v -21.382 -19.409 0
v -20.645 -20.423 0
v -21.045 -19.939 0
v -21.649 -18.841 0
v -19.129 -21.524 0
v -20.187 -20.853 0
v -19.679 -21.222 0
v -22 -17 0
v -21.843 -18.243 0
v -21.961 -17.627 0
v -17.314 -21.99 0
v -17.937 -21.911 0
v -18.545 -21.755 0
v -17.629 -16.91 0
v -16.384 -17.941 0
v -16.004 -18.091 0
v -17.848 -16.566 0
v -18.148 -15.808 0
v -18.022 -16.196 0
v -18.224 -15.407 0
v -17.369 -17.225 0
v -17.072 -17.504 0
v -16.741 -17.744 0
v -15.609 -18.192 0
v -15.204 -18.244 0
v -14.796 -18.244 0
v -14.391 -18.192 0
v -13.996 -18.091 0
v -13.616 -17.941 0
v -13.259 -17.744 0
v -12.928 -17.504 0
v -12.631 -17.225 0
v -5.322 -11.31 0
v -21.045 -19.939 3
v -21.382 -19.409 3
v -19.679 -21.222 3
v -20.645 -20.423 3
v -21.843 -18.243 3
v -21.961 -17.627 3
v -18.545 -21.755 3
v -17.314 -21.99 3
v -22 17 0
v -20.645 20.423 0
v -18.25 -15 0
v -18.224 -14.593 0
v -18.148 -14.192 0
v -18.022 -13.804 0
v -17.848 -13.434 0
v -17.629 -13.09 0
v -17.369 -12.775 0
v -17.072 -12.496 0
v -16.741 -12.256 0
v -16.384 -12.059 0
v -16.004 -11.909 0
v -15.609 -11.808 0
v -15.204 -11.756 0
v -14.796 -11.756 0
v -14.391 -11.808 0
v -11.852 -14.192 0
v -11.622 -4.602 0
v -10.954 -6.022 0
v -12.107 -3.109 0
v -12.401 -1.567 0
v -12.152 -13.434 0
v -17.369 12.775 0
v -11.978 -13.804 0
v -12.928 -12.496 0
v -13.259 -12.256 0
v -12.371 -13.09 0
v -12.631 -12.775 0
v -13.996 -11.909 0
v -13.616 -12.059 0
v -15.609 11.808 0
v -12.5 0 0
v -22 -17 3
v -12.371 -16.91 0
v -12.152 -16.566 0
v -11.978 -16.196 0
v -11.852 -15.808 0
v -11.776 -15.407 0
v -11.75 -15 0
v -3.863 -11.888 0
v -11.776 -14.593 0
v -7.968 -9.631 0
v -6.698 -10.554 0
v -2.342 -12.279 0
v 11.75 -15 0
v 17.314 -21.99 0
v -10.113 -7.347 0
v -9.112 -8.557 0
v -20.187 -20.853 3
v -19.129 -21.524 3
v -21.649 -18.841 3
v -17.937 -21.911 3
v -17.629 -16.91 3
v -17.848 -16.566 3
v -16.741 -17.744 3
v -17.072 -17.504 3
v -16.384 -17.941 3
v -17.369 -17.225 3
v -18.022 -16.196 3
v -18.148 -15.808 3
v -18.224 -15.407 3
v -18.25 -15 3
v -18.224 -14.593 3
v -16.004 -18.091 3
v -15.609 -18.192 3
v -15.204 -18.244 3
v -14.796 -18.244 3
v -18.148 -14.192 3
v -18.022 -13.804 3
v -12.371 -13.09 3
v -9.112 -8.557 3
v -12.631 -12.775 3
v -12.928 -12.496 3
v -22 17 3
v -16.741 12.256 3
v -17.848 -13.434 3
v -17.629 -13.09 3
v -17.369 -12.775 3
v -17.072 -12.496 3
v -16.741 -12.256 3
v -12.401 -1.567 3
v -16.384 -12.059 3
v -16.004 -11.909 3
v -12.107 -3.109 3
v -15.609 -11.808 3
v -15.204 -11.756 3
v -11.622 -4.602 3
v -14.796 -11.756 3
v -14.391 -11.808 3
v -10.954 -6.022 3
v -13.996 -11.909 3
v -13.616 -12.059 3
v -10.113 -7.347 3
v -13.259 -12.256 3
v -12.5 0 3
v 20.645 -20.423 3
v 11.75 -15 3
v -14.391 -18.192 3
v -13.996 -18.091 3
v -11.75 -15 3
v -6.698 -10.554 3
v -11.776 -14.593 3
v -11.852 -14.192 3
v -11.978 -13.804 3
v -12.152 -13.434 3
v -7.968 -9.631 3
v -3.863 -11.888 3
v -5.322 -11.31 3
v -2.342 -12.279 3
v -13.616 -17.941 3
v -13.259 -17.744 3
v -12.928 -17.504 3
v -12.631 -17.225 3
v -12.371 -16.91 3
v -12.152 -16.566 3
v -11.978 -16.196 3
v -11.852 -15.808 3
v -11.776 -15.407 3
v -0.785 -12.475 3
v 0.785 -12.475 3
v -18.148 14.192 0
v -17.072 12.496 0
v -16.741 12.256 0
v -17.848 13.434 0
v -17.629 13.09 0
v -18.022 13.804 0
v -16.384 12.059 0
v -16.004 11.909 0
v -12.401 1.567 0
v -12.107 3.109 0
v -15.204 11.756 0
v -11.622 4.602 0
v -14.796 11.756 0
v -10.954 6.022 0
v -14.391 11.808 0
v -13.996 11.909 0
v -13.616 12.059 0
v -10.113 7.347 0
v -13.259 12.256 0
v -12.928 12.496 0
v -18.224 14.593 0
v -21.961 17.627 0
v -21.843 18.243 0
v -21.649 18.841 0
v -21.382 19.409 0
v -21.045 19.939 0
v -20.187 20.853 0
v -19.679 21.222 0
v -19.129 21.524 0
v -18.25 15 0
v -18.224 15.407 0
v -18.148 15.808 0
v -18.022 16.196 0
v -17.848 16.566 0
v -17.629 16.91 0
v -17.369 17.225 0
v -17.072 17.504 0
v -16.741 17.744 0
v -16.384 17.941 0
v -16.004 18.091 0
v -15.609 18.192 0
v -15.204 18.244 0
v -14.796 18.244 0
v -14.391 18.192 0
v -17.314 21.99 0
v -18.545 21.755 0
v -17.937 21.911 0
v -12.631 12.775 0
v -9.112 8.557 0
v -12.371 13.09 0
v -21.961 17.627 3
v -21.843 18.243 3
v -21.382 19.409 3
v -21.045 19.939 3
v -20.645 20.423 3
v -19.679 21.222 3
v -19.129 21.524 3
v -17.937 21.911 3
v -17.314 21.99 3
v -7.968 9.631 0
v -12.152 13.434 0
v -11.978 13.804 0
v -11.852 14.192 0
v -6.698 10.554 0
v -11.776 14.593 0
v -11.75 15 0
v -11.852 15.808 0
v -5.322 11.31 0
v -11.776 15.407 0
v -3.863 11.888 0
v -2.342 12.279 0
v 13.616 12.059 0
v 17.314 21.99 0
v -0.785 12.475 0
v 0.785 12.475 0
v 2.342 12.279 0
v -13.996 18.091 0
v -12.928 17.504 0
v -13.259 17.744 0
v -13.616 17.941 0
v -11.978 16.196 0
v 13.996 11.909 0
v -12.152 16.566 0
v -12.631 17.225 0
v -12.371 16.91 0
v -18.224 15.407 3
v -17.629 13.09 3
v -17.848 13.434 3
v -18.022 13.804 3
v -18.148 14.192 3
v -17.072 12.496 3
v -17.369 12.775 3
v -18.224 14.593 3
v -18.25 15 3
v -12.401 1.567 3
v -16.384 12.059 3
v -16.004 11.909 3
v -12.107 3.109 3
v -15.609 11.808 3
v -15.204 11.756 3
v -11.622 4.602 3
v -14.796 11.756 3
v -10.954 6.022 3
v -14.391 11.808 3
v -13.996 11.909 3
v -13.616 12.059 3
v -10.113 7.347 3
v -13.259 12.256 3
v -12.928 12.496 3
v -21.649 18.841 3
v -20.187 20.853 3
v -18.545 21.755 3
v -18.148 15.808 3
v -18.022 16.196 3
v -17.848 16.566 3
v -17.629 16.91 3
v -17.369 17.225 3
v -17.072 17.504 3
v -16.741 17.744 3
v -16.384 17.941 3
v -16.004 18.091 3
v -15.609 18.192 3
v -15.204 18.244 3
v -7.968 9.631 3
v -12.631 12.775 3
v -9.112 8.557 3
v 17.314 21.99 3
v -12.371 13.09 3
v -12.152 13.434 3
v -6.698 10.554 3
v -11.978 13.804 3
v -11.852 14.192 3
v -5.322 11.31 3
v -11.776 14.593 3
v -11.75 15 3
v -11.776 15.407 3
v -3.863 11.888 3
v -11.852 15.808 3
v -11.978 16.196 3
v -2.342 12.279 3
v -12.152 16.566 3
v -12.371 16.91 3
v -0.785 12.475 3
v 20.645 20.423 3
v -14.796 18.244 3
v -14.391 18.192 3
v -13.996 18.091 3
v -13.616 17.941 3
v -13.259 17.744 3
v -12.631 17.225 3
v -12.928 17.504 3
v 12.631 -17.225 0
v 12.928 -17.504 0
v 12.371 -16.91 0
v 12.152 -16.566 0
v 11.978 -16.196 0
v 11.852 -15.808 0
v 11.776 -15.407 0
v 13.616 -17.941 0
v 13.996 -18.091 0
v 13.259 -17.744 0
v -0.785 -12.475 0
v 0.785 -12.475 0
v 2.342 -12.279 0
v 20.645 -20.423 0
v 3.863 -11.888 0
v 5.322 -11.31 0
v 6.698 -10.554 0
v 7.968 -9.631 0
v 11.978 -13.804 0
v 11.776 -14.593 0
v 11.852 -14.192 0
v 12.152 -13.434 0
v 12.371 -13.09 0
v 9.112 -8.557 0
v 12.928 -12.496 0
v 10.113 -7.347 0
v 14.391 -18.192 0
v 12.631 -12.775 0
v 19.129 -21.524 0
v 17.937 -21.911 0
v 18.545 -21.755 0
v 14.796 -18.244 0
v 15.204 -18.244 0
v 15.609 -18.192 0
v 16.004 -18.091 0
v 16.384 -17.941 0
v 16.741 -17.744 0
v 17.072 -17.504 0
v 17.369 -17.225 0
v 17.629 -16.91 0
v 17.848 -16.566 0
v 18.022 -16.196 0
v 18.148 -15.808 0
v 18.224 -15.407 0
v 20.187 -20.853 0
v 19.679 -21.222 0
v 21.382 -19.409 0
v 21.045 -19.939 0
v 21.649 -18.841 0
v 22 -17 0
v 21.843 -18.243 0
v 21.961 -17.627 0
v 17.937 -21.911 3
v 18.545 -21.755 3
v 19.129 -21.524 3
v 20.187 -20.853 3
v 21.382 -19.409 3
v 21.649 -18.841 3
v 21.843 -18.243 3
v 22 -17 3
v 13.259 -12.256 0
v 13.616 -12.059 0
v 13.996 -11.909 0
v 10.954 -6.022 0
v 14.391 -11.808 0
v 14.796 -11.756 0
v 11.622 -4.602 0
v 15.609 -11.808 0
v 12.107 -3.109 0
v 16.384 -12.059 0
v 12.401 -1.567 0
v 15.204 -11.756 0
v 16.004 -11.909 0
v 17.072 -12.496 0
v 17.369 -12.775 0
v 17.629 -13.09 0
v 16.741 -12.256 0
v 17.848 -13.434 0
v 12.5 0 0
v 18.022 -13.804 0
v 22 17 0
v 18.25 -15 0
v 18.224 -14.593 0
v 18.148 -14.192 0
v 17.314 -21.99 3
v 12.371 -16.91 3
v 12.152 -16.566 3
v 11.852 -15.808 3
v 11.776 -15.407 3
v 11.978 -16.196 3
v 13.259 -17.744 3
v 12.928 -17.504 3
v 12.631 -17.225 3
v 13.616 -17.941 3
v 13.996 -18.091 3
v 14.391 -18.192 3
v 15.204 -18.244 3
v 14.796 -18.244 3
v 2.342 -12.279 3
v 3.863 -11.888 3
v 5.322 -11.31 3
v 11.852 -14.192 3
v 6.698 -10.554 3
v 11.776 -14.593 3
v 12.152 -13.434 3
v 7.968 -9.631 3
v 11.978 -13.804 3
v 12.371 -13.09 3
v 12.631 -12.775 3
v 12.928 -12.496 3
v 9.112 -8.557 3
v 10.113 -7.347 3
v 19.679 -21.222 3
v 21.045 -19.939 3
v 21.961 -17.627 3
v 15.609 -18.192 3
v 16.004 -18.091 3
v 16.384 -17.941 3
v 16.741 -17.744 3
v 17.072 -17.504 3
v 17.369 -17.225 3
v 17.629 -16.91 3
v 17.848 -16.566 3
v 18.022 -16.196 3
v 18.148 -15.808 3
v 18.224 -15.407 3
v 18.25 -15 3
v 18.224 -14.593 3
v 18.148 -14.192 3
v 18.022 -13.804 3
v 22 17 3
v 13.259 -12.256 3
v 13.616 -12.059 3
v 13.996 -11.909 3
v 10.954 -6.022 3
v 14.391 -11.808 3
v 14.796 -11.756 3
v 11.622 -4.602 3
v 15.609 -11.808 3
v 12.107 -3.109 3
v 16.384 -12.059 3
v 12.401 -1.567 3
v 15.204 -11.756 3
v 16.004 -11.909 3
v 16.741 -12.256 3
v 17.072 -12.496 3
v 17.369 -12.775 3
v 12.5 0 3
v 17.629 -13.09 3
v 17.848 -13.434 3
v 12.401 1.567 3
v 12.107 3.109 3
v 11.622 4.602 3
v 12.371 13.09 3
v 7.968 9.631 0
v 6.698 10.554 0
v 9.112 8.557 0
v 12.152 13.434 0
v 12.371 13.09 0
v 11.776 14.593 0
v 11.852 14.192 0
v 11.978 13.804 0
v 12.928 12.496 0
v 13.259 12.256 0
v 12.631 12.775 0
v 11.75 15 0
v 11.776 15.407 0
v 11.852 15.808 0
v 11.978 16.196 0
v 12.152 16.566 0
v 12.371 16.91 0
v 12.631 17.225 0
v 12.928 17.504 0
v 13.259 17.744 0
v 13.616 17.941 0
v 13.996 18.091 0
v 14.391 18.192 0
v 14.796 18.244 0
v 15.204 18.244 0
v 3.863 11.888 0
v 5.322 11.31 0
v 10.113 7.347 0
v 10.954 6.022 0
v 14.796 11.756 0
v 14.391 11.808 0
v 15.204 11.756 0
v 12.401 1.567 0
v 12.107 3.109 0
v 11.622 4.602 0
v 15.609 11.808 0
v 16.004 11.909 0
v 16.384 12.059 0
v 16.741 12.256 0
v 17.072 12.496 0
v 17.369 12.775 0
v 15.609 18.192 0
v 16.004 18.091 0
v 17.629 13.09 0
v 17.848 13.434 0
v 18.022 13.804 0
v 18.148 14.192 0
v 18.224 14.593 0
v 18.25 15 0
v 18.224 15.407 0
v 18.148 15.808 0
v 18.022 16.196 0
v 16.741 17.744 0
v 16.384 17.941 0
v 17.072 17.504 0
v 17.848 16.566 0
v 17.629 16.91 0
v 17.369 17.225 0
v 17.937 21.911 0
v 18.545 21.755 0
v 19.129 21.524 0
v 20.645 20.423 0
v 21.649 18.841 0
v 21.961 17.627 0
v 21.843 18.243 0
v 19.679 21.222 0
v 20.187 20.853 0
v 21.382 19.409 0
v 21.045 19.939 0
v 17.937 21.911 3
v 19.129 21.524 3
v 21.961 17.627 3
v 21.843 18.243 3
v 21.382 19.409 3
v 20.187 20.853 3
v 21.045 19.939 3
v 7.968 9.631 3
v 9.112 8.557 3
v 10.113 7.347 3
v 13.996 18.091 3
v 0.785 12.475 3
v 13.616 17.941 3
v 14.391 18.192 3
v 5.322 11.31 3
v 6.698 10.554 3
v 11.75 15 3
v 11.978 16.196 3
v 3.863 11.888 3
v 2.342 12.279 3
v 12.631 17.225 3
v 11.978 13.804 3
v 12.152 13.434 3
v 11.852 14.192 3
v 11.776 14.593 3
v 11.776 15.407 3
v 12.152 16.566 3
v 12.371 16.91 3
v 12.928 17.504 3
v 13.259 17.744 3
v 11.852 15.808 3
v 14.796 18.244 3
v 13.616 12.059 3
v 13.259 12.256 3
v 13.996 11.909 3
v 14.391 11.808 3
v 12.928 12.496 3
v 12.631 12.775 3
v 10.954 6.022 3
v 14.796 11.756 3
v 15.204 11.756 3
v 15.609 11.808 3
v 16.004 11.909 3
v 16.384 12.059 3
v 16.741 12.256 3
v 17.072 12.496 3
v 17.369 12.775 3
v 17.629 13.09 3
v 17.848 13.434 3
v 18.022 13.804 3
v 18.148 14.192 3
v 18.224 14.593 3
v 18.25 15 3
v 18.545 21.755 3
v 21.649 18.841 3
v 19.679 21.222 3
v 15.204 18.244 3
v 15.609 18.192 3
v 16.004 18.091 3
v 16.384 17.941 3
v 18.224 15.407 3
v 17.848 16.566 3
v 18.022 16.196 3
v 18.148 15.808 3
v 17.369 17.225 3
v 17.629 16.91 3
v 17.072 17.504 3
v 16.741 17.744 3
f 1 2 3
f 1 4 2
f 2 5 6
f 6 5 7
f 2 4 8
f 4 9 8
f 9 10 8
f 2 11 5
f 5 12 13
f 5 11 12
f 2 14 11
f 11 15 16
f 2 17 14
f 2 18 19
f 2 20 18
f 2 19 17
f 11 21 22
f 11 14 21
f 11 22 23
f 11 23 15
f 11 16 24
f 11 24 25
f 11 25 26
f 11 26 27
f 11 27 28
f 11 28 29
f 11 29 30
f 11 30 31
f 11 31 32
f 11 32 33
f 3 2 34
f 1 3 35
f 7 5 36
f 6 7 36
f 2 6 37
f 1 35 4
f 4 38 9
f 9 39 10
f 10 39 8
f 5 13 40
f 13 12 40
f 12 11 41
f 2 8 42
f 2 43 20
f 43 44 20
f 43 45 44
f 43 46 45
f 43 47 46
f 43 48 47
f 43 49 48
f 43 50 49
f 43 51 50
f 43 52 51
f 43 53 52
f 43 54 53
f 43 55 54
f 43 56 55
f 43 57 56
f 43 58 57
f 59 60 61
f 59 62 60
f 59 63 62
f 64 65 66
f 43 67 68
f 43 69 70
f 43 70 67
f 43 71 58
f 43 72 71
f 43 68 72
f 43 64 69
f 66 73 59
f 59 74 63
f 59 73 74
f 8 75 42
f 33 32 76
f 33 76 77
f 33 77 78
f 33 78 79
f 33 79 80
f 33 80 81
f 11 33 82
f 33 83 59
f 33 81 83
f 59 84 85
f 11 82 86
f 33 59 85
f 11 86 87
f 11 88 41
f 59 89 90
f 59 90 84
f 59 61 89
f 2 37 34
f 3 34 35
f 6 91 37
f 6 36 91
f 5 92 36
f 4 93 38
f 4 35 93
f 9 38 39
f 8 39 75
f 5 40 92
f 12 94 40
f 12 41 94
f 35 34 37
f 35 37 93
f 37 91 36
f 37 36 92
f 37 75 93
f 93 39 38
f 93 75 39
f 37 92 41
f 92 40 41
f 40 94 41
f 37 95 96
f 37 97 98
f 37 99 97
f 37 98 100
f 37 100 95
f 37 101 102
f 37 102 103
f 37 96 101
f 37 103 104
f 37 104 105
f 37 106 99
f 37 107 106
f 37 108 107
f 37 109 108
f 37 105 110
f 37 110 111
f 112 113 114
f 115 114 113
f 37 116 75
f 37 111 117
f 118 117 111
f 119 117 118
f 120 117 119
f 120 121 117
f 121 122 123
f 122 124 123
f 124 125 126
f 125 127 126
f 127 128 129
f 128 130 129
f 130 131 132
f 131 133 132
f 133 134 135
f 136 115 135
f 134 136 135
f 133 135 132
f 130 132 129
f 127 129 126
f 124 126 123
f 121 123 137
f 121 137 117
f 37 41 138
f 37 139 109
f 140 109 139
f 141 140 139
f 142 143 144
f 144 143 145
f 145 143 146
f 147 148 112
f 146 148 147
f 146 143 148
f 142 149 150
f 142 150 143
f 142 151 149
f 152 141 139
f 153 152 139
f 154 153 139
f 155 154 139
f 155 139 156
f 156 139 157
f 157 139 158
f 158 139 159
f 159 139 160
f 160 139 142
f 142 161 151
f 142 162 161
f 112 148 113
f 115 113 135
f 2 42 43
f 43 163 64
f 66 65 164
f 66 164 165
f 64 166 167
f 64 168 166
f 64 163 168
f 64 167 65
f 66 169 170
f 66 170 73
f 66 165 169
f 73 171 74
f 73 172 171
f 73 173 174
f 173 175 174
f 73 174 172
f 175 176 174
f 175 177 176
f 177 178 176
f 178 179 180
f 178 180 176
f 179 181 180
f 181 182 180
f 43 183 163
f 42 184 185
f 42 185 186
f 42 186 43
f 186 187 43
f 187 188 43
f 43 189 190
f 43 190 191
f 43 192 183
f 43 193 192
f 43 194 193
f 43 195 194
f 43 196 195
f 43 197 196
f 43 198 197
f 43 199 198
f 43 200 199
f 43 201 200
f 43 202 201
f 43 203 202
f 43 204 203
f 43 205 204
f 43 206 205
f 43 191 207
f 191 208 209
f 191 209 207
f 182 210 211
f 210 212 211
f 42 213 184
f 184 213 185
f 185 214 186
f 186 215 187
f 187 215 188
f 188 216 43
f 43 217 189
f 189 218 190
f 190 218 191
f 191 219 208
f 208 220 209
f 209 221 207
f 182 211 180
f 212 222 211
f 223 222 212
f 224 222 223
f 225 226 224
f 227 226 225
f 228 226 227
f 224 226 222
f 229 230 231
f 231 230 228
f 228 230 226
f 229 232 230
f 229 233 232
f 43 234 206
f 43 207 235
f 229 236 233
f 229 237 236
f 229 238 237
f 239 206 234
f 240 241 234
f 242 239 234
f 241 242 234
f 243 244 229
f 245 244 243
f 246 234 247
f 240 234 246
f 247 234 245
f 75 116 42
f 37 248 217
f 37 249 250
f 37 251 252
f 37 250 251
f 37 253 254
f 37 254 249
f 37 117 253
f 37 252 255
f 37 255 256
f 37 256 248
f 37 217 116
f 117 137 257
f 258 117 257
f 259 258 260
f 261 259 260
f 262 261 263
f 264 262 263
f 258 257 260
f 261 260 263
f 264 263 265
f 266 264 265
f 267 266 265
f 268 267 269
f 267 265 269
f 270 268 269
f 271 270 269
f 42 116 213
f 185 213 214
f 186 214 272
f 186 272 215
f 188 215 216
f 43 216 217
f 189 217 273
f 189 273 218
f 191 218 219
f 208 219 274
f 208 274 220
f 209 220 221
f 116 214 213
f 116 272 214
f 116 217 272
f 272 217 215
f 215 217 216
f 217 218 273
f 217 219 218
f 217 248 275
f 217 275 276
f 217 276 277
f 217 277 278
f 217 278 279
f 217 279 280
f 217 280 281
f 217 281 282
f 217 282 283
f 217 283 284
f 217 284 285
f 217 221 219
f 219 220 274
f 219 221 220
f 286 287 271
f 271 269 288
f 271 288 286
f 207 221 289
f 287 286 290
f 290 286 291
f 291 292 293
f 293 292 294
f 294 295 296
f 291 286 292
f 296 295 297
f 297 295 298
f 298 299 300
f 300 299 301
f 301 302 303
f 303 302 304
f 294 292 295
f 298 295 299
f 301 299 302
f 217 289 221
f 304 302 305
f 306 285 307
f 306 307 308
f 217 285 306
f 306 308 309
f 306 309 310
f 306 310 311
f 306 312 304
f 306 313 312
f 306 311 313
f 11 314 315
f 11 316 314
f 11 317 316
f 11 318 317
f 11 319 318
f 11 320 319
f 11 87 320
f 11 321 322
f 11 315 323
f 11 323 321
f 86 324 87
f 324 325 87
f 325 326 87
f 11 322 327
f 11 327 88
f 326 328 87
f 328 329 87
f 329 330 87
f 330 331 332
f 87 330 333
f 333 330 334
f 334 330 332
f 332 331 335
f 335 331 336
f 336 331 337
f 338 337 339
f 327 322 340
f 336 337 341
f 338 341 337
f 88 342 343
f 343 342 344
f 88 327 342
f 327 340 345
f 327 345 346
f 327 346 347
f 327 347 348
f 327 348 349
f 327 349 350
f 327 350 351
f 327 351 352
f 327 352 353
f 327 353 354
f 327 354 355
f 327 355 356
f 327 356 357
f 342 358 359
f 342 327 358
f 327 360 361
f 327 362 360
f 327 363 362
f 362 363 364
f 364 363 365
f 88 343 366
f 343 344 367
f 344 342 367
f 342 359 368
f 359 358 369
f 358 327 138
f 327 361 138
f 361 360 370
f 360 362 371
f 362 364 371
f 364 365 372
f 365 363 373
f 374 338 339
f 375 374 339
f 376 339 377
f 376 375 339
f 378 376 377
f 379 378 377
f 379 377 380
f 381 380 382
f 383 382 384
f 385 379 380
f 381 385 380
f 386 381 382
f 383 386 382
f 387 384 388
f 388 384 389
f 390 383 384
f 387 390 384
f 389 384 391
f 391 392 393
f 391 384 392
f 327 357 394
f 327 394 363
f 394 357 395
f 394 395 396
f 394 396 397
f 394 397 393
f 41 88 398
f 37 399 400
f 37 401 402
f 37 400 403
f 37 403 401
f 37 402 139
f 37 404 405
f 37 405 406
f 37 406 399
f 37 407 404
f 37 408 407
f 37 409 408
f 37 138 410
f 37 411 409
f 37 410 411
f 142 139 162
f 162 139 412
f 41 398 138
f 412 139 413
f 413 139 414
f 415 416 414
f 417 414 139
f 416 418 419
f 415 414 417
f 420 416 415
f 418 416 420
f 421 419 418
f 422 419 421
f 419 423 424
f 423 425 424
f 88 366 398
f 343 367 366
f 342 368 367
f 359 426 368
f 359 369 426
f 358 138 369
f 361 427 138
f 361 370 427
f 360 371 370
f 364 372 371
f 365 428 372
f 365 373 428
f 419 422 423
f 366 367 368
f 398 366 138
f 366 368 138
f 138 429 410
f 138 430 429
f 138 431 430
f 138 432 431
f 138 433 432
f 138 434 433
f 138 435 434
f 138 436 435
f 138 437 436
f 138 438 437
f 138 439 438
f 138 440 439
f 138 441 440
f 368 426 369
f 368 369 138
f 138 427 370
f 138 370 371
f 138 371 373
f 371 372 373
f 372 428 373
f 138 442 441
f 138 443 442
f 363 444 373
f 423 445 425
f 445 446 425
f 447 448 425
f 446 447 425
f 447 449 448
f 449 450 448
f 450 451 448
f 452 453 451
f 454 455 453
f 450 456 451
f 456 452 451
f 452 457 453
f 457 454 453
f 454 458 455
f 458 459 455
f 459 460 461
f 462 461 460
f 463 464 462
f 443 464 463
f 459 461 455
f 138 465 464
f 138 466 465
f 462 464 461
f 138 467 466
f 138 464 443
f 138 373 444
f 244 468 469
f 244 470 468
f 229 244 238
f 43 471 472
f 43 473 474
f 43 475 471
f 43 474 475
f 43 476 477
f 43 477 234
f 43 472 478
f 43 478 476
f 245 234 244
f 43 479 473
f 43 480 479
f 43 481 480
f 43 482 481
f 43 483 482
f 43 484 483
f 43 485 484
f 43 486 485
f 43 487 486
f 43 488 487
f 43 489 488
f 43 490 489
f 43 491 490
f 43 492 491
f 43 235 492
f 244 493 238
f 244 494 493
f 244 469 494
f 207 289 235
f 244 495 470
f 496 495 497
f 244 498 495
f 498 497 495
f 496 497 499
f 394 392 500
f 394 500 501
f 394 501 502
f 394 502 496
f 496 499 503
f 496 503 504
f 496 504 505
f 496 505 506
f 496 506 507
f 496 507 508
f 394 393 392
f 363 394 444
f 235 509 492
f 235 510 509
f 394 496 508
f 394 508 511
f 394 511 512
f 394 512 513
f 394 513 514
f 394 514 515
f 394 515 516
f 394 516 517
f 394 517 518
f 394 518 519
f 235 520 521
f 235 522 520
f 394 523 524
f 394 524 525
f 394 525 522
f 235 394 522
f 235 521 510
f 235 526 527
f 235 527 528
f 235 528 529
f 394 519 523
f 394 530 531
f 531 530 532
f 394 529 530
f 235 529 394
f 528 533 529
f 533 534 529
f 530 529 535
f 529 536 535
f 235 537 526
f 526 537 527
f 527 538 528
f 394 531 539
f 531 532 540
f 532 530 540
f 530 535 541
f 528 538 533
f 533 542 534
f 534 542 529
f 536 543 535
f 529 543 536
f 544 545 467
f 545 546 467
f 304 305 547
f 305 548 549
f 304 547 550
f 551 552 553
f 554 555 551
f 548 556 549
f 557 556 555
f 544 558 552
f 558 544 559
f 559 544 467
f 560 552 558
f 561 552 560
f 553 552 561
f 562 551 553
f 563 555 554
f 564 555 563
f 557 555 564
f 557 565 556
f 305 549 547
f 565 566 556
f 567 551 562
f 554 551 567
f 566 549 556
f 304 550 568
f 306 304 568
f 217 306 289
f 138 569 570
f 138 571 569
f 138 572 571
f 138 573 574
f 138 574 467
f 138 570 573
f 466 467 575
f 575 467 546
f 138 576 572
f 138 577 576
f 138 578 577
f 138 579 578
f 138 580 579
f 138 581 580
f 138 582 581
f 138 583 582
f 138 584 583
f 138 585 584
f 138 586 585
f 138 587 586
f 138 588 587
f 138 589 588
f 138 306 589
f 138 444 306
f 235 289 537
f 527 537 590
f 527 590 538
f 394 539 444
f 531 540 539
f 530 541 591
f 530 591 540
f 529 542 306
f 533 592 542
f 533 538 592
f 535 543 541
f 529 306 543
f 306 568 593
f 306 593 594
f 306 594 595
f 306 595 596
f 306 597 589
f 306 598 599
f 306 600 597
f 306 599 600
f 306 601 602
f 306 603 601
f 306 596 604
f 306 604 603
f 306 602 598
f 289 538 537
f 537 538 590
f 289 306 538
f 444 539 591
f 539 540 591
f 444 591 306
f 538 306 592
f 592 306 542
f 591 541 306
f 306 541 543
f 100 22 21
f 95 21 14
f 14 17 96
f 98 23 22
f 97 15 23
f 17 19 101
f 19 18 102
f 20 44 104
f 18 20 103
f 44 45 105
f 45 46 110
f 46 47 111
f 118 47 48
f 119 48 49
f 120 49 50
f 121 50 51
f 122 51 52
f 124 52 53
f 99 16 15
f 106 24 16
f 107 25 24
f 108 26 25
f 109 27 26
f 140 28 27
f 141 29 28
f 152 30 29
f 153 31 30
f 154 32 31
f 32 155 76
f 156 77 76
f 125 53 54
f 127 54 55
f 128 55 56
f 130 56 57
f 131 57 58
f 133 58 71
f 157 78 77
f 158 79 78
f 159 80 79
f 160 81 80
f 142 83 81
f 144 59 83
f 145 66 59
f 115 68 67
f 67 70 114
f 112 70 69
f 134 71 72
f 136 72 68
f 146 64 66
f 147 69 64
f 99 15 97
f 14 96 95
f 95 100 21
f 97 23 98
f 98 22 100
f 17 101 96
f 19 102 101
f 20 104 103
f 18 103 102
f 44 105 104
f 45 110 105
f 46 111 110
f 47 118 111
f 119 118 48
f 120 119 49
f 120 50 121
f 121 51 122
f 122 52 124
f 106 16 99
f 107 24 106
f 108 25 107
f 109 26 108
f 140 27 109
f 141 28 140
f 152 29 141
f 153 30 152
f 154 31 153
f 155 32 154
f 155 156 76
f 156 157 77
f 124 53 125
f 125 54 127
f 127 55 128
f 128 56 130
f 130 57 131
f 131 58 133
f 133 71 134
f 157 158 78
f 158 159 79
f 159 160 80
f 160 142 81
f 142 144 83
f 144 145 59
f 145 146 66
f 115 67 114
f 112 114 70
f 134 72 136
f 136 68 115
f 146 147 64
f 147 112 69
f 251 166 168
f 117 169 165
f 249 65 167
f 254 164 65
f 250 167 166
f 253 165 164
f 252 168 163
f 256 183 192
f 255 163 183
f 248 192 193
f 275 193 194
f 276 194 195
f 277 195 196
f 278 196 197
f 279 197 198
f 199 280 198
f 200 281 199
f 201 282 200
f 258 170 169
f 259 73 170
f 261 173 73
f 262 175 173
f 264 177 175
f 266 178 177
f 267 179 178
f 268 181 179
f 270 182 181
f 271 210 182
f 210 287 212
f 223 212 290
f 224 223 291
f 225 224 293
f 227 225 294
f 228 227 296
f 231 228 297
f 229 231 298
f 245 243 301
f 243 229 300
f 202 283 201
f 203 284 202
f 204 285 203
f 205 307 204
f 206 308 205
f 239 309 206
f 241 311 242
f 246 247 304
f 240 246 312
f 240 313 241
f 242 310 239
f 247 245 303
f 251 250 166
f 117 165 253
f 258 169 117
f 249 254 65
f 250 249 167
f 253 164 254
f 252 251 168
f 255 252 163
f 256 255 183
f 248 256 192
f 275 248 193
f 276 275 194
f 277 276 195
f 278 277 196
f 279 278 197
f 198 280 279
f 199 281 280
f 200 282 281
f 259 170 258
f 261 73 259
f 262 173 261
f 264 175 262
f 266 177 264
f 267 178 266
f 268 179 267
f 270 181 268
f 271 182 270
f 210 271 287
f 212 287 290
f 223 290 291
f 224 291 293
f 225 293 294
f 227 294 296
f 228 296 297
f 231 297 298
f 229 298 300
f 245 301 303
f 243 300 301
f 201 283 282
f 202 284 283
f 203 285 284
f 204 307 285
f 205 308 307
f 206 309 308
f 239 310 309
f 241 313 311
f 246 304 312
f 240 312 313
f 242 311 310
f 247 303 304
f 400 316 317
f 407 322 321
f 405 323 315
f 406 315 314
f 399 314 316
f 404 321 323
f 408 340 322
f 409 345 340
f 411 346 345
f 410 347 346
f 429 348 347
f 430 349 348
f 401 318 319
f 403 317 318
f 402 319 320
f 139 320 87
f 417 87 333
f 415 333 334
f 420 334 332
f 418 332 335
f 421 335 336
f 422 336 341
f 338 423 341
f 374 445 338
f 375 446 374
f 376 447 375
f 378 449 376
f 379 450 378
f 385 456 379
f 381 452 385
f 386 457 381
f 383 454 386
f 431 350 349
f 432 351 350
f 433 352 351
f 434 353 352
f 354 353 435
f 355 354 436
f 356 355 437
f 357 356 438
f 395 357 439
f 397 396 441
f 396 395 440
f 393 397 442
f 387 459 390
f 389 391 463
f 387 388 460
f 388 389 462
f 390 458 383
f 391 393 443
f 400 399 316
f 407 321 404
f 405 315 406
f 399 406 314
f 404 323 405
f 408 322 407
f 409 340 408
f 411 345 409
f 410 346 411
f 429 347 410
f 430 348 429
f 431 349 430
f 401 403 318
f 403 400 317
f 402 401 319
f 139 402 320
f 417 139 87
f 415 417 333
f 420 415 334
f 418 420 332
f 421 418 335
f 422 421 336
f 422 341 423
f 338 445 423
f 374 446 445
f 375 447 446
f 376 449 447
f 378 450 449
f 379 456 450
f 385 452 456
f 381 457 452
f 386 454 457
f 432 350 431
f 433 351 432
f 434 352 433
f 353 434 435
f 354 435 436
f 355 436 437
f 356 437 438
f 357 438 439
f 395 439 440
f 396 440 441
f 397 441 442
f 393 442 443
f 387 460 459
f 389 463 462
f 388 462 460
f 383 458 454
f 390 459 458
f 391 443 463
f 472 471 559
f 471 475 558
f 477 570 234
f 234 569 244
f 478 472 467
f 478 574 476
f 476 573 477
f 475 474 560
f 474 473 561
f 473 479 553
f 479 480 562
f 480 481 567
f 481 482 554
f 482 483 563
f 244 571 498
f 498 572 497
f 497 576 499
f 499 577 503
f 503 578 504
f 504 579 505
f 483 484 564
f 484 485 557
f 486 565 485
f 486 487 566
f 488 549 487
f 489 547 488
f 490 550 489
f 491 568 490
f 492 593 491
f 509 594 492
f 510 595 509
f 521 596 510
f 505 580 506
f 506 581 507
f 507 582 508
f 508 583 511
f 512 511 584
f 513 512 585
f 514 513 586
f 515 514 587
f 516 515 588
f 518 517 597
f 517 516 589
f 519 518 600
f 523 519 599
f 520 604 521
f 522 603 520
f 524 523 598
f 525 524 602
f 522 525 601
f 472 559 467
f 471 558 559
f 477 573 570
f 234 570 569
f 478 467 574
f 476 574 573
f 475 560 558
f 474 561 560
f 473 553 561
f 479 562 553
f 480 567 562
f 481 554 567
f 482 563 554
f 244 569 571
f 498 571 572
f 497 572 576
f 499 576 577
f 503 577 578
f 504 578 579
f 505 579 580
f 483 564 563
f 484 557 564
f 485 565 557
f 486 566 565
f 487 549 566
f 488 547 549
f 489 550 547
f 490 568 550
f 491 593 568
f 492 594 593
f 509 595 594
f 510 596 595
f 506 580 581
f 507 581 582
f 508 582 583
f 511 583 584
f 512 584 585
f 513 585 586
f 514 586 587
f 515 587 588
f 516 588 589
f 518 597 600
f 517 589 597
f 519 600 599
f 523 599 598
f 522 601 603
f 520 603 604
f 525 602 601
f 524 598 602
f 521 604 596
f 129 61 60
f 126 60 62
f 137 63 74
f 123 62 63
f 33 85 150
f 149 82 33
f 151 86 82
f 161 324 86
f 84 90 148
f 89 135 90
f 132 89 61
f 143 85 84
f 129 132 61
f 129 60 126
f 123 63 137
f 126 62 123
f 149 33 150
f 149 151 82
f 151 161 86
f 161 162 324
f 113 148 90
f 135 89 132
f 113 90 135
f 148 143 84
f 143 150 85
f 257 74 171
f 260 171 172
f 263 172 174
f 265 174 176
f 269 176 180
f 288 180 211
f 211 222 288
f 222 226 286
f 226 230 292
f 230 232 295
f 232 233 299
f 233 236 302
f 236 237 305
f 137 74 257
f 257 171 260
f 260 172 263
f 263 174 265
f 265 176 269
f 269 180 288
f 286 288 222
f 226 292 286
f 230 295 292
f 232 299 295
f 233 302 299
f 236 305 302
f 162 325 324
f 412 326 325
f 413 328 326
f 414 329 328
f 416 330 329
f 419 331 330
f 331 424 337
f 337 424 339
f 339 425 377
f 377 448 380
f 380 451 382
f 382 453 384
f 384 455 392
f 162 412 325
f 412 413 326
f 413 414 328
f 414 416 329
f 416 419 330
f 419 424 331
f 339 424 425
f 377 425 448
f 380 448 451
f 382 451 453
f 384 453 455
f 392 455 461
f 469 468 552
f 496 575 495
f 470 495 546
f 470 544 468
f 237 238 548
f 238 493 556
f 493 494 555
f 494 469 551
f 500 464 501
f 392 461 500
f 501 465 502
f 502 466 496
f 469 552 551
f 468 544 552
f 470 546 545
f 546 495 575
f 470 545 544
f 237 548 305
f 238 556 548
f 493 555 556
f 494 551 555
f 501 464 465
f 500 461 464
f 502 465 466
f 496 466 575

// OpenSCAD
$fn = 50;

difference() {
	union() {
		hull() {
			translate(v = [-17.0, 17.0, 0]) {
				cylinder(h = 3, r = 5);
			}
			translate(v = [17.0, 17.0, 0]) {
				cylinder(h = 3, r = 5);
			}
			translate(v = [-17.0, -17.0, 0]) {
				cylinder(h = 3, r = 5);
			}
			translate(v = [17.0, -17.0, 0]) {
				cylinder(h = 3, r = 5);
			}
		}
	}
	union() {
		translate(v = [-15.0, -15.0, -100.0]) {
			cylinder(h = 200, r = 3.25);
		}
		translate(v = [-15.0, 15.0, -100.0]) {
			cylinder(h = 200, r = 3.25);
		}
		translate(v = [15.0, -15.0, -100.0]) {
			cylinder(h = 200, r = 3.25);
		}
		translate(v = [15.0, 15.0, -100.0]) {
			cylinder(h = 200, r = 3.25);
		}
		translate(v = [-15.0, -15.0, -100.0]) {
			cylinder(h = 200, r = 1.8);
		}
		translate(v = [-15.0, 15.0, -100.0]) {
			cylinder(h = 200, r = 1.8);
		}
		translate(v = [15.0, -15.0, -100.0]) {
			cylinder(h = 200, r = 1.8);
		}
		translate(v = [15.0, 15.0, -100.0]) {
			cylinder(h = 200, r = 1.8);
		}
		cylinder(h = 3, r = 12.5);
	}
}
